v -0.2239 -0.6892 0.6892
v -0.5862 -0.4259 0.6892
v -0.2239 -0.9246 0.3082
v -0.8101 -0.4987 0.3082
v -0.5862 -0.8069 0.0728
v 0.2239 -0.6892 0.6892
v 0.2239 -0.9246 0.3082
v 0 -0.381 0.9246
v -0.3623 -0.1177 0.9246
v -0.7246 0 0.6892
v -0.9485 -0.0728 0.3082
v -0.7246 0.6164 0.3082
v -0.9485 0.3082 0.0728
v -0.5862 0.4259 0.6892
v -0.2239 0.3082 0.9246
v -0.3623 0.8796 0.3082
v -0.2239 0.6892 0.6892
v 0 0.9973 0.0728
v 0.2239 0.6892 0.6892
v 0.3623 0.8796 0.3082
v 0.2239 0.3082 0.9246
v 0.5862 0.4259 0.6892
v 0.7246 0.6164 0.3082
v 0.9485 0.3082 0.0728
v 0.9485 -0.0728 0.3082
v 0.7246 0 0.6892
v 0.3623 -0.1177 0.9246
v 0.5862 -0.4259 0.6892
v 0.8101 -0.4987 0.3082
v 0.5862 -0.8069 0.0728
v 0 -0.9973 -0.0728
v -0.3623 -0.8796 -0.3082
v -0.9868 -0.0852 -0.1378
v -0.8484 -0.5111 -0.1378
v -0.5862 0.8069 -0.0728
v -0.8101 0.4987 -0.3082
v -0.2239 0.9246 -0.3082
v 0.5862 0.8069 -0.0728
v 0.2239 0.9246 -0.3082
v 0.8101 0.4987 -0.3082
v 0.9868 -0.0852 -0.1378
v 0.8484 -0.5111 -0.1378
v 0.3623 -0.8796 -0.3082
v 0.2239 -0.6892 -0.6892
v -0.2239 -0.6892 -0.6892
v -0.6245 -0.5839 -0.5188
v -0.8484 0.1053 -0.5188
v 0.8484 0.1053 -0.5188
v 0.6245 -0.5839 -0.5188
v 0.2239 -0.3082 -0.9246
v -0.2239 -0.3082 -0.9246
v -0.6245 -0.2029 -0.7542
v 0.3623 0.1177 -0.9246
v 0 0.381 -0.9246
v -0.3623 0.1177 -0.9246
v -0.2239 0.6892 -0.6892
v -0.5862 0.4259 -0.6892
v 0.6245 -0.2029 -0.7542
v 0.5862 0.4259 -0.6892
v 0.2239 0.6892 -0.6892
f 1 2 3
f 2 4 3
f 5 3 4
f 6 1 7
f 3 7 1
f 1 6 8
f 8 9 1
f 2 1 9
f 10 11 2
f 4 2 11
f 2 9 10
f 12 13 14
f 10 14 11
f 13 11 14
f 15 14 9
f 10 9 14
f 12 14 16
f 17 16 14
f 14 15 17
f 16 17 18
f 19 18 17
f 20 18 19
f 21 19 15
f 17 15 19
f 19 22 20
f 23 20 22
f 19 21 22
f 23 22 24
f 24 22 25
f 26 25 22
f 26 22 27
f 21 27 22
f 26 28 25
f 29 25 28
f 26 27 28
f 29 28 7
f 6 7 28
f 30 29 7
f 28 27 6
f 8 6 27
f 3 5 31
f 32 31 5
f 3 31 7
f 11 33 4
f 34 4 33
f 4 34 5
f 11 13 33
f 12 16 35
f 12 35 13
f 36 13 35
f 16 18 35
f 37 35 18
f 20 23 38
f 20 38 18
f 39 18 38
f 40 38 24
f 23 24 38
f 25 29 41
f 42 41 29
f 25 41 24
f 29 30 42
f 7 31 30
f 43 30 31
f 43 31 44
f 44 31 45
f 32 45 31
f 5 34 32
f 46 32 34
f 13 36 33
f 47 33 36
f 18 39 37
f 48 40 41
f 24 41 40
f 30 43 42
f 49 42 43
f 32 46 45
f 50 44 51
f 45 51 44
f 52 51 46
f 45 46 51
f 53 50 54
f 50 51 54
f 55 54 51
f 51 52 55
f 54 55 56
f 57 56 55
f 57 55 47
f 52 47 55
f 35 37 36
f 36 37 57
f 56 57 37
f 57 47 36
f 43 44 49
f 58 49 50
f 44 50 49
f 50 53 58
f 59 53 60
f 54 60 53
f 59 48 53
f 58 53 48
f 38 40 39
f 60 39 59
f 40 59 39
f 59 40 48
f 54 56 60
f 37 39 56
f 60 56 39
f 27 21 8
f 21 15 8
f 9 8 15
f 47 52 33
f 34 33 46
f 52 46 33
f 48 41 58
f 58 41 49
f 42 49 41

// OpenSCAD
polyhedron( points = [[-0.223918979483029, -0.689151757695657, 0.689151757338017], [-0.586227499430719, -0.425919209655217, 0.689151757338017], [-0.724617039868868, -1.52012937821437e-11, 0.689151757338017], [-0.586227500040504, 0.425919209612386, 0.689151757338017], [-0.223918980469683, 0.689151757620292, 0.689151757338017], [0.223918978788847, 0.689151757620296, 0.689151757338017], [0.586227498760171, 0.425919209612386, 0.689151757338017], [0.724617039236567, -1.52012937821437e-11, 0.689151757338017], [0.586227499446451, -0.425919209655215, 0.689151757338017], [0.223918979899264, -0.689151757695657, 0.689151757338017], [-0.223918979462923, -0.924594106352472, 0.308198035199304], [-0.810146479107579, -0.498674896715498, 0.308198035190474], [-0.948536019182326, -0.0727556869506436, 0.308198035141107], [-0.724617039384518, 0.616396070483286, 0.308198035175763], [-0.362308519556424, 0.879628618313073, 0.308198035141107], [0.362308520187997, 0.879628618230676, 0.308198035175763], [0.72461703994566, 0.616396070303949, 0.308198035141107], [0.948536019586742, -0.0727556871809039, 0.308198035175763], [0.810146479407295, -0.498674896592629, 0.308198035141107], [0.223918979849759, -0.924594106337016, 0.308198035224312], [9.69364515319493e-11, -0.997349792624526, -0.0727556871165783], [-0.586227499461932, -0.806872932097897, 0.0727556868234526], [-0.948536019136423, 0.30819803559517, 0.0727556867883735], [3.62820100455604e-10, 0.997349792461456, 0.0727556866835793], [0.948536019598346, 0.308198034943167, 0.0727556866835793], [0.586227499739306, -0.806872931854494, 0.0727556866870188], [-0.362308519862861, -0.879628618683872, -0.308198035149688], [-0.223918979730942, -0.689151757186098, -0.68915175711999], [-0.223918979706177, -0.308198034622297, -0.924594105443626], [-0.362308519798028, 0.117721175136997, -0.924594105457025], [-0.586227499381793, 0.425919210434227, -0.689151757155069], [-0.810146478987397, 0.498674897058287, -0.308198035193043], [0.362308520085021, -0.879628618768918, -0.308198035473117], [0.22391897994145, -0.689151757810971, -0.689151757622948], [0.223918979953058, -0.308198035792178, -0.924594106050061], [0.362308520115398, 0.1177211736251, -0.924594106051373], [0.586227499776857, 0.425919208913947, -0.689151757626378], [0.810146479437676, 0.498674895866461, -0.308198035477362], [-1.39665596978548e-09, 0.380953723872944, -0.924594104150498], [-0.223918981373037, 0.68915175849727, -0.689151755166686], [0.223918979593122, 0.689151757147307, -0.689151757744818], [-0.223918979240821, 0.924594105235802, -0.308198035315953], [0.223918980163269, 0.924594106168823, -0.308198035424652], [0.58622749999345, 0.806872931936416, -0.0727556867864008], [-0.586227499707005, 0.806872931842115, -0.0727556867864008], [2.19724693481809e-10, -0.380953721901734, 0.92459410543474], [0.362308519510906, -0.117721174254719, 0.924594105681265], [0.223918979039766, 0.308198035312549, 0.924594105681265], [-0.223918980159768, 0.308198035298898, 0.924594105681266], [-0.362308519661594, -0.117721174024647, 0.924594105377173], [-0.848396407080292, -0.511103050904071, -0.13783035155085], [-0.986785947300658, -0.0851838416474538, -0.137830351560366], [-0.848396407164065, 0.105293019778815, -0.518784073495374], [-0.624477427612012, -0.202905015486967, -0.754226421756442], [-0.624477427491974, -0.583858737538041, -0.518784073345147], [0.986785947228597, -0.0851838425500263, -0.137830351601532], [0.848396407465693, -0.511103051636175, -0.137830351596341], [0.624477427843119, -0.58385873852809, -0.518784073710059], [0.624477427861901, -0.202905016553381, -0.754226422096289], [0.848396407104838, 0.105293018405771, -0.518784073583634]], faces = [[0, 1, 11, 21, 10], [0, 10, 19, 9], [0, 9, 45], [0, 45, 49, 1], [1, 2, 12, 11], [1, 49, 2], [2, 3, 13, 22, 12], [2, 49, 48, 3], [3, 4, 14, 13], [3, 48, 4], [4, 5, 15, 23, 14], [4, 48, 47, 5], [5, 6, 16, 15], [5, 47, 6], [6, 7, 17, 24, 16], [6, 47, 46, 7], [7, 8, 18, 17], [7, 46, 8], [8, 9, 19, 25, 18], [8, 46, 45, 9], [10, 21, 26, 20], [10, 20, 19], [11, 12, 51, 50], [11, 50, 21], [12, 22, 51], [13, 14, 44], [13, 44, 31, 22], [14, 23, 41, 44], [15, 16, 43], [15, 43, 42, 23], [16, 24, 37, 43], [17, 18, 56, 55], [17, 55, 24], [18, 25, 56], [19, 20, 32, 25], [20, 26, 27, 33, 32], [21, 50, 54, 26], [22, 31, 52, 51], [23, 42, 41], [24, 55, 59, 37], [25, 32, 57, 56], [26, 54, 27], [27, 28, 34, 33], [27, 54, 53, 28], [28, 29, 38, 35, 34], [28, 53, 29], [29, 30, 39, 38], [29, 53, 52, 30], [30, 31, 44, 41, 39], [30, 52, 31], [32, 33, 57], [33, 34, 58, 57], [34, 35, 58], [35, 38, 40, 36], [35, 36, 59, 58], [36, 40, 42, 43, 37], [36, 37, 59], [38, 39, 40], [39, 41, 42, 40], [45, 46, 47, 48, 49], [50, 51, 52, 53, 54], [55, 56, 57, 58, 59]]);
